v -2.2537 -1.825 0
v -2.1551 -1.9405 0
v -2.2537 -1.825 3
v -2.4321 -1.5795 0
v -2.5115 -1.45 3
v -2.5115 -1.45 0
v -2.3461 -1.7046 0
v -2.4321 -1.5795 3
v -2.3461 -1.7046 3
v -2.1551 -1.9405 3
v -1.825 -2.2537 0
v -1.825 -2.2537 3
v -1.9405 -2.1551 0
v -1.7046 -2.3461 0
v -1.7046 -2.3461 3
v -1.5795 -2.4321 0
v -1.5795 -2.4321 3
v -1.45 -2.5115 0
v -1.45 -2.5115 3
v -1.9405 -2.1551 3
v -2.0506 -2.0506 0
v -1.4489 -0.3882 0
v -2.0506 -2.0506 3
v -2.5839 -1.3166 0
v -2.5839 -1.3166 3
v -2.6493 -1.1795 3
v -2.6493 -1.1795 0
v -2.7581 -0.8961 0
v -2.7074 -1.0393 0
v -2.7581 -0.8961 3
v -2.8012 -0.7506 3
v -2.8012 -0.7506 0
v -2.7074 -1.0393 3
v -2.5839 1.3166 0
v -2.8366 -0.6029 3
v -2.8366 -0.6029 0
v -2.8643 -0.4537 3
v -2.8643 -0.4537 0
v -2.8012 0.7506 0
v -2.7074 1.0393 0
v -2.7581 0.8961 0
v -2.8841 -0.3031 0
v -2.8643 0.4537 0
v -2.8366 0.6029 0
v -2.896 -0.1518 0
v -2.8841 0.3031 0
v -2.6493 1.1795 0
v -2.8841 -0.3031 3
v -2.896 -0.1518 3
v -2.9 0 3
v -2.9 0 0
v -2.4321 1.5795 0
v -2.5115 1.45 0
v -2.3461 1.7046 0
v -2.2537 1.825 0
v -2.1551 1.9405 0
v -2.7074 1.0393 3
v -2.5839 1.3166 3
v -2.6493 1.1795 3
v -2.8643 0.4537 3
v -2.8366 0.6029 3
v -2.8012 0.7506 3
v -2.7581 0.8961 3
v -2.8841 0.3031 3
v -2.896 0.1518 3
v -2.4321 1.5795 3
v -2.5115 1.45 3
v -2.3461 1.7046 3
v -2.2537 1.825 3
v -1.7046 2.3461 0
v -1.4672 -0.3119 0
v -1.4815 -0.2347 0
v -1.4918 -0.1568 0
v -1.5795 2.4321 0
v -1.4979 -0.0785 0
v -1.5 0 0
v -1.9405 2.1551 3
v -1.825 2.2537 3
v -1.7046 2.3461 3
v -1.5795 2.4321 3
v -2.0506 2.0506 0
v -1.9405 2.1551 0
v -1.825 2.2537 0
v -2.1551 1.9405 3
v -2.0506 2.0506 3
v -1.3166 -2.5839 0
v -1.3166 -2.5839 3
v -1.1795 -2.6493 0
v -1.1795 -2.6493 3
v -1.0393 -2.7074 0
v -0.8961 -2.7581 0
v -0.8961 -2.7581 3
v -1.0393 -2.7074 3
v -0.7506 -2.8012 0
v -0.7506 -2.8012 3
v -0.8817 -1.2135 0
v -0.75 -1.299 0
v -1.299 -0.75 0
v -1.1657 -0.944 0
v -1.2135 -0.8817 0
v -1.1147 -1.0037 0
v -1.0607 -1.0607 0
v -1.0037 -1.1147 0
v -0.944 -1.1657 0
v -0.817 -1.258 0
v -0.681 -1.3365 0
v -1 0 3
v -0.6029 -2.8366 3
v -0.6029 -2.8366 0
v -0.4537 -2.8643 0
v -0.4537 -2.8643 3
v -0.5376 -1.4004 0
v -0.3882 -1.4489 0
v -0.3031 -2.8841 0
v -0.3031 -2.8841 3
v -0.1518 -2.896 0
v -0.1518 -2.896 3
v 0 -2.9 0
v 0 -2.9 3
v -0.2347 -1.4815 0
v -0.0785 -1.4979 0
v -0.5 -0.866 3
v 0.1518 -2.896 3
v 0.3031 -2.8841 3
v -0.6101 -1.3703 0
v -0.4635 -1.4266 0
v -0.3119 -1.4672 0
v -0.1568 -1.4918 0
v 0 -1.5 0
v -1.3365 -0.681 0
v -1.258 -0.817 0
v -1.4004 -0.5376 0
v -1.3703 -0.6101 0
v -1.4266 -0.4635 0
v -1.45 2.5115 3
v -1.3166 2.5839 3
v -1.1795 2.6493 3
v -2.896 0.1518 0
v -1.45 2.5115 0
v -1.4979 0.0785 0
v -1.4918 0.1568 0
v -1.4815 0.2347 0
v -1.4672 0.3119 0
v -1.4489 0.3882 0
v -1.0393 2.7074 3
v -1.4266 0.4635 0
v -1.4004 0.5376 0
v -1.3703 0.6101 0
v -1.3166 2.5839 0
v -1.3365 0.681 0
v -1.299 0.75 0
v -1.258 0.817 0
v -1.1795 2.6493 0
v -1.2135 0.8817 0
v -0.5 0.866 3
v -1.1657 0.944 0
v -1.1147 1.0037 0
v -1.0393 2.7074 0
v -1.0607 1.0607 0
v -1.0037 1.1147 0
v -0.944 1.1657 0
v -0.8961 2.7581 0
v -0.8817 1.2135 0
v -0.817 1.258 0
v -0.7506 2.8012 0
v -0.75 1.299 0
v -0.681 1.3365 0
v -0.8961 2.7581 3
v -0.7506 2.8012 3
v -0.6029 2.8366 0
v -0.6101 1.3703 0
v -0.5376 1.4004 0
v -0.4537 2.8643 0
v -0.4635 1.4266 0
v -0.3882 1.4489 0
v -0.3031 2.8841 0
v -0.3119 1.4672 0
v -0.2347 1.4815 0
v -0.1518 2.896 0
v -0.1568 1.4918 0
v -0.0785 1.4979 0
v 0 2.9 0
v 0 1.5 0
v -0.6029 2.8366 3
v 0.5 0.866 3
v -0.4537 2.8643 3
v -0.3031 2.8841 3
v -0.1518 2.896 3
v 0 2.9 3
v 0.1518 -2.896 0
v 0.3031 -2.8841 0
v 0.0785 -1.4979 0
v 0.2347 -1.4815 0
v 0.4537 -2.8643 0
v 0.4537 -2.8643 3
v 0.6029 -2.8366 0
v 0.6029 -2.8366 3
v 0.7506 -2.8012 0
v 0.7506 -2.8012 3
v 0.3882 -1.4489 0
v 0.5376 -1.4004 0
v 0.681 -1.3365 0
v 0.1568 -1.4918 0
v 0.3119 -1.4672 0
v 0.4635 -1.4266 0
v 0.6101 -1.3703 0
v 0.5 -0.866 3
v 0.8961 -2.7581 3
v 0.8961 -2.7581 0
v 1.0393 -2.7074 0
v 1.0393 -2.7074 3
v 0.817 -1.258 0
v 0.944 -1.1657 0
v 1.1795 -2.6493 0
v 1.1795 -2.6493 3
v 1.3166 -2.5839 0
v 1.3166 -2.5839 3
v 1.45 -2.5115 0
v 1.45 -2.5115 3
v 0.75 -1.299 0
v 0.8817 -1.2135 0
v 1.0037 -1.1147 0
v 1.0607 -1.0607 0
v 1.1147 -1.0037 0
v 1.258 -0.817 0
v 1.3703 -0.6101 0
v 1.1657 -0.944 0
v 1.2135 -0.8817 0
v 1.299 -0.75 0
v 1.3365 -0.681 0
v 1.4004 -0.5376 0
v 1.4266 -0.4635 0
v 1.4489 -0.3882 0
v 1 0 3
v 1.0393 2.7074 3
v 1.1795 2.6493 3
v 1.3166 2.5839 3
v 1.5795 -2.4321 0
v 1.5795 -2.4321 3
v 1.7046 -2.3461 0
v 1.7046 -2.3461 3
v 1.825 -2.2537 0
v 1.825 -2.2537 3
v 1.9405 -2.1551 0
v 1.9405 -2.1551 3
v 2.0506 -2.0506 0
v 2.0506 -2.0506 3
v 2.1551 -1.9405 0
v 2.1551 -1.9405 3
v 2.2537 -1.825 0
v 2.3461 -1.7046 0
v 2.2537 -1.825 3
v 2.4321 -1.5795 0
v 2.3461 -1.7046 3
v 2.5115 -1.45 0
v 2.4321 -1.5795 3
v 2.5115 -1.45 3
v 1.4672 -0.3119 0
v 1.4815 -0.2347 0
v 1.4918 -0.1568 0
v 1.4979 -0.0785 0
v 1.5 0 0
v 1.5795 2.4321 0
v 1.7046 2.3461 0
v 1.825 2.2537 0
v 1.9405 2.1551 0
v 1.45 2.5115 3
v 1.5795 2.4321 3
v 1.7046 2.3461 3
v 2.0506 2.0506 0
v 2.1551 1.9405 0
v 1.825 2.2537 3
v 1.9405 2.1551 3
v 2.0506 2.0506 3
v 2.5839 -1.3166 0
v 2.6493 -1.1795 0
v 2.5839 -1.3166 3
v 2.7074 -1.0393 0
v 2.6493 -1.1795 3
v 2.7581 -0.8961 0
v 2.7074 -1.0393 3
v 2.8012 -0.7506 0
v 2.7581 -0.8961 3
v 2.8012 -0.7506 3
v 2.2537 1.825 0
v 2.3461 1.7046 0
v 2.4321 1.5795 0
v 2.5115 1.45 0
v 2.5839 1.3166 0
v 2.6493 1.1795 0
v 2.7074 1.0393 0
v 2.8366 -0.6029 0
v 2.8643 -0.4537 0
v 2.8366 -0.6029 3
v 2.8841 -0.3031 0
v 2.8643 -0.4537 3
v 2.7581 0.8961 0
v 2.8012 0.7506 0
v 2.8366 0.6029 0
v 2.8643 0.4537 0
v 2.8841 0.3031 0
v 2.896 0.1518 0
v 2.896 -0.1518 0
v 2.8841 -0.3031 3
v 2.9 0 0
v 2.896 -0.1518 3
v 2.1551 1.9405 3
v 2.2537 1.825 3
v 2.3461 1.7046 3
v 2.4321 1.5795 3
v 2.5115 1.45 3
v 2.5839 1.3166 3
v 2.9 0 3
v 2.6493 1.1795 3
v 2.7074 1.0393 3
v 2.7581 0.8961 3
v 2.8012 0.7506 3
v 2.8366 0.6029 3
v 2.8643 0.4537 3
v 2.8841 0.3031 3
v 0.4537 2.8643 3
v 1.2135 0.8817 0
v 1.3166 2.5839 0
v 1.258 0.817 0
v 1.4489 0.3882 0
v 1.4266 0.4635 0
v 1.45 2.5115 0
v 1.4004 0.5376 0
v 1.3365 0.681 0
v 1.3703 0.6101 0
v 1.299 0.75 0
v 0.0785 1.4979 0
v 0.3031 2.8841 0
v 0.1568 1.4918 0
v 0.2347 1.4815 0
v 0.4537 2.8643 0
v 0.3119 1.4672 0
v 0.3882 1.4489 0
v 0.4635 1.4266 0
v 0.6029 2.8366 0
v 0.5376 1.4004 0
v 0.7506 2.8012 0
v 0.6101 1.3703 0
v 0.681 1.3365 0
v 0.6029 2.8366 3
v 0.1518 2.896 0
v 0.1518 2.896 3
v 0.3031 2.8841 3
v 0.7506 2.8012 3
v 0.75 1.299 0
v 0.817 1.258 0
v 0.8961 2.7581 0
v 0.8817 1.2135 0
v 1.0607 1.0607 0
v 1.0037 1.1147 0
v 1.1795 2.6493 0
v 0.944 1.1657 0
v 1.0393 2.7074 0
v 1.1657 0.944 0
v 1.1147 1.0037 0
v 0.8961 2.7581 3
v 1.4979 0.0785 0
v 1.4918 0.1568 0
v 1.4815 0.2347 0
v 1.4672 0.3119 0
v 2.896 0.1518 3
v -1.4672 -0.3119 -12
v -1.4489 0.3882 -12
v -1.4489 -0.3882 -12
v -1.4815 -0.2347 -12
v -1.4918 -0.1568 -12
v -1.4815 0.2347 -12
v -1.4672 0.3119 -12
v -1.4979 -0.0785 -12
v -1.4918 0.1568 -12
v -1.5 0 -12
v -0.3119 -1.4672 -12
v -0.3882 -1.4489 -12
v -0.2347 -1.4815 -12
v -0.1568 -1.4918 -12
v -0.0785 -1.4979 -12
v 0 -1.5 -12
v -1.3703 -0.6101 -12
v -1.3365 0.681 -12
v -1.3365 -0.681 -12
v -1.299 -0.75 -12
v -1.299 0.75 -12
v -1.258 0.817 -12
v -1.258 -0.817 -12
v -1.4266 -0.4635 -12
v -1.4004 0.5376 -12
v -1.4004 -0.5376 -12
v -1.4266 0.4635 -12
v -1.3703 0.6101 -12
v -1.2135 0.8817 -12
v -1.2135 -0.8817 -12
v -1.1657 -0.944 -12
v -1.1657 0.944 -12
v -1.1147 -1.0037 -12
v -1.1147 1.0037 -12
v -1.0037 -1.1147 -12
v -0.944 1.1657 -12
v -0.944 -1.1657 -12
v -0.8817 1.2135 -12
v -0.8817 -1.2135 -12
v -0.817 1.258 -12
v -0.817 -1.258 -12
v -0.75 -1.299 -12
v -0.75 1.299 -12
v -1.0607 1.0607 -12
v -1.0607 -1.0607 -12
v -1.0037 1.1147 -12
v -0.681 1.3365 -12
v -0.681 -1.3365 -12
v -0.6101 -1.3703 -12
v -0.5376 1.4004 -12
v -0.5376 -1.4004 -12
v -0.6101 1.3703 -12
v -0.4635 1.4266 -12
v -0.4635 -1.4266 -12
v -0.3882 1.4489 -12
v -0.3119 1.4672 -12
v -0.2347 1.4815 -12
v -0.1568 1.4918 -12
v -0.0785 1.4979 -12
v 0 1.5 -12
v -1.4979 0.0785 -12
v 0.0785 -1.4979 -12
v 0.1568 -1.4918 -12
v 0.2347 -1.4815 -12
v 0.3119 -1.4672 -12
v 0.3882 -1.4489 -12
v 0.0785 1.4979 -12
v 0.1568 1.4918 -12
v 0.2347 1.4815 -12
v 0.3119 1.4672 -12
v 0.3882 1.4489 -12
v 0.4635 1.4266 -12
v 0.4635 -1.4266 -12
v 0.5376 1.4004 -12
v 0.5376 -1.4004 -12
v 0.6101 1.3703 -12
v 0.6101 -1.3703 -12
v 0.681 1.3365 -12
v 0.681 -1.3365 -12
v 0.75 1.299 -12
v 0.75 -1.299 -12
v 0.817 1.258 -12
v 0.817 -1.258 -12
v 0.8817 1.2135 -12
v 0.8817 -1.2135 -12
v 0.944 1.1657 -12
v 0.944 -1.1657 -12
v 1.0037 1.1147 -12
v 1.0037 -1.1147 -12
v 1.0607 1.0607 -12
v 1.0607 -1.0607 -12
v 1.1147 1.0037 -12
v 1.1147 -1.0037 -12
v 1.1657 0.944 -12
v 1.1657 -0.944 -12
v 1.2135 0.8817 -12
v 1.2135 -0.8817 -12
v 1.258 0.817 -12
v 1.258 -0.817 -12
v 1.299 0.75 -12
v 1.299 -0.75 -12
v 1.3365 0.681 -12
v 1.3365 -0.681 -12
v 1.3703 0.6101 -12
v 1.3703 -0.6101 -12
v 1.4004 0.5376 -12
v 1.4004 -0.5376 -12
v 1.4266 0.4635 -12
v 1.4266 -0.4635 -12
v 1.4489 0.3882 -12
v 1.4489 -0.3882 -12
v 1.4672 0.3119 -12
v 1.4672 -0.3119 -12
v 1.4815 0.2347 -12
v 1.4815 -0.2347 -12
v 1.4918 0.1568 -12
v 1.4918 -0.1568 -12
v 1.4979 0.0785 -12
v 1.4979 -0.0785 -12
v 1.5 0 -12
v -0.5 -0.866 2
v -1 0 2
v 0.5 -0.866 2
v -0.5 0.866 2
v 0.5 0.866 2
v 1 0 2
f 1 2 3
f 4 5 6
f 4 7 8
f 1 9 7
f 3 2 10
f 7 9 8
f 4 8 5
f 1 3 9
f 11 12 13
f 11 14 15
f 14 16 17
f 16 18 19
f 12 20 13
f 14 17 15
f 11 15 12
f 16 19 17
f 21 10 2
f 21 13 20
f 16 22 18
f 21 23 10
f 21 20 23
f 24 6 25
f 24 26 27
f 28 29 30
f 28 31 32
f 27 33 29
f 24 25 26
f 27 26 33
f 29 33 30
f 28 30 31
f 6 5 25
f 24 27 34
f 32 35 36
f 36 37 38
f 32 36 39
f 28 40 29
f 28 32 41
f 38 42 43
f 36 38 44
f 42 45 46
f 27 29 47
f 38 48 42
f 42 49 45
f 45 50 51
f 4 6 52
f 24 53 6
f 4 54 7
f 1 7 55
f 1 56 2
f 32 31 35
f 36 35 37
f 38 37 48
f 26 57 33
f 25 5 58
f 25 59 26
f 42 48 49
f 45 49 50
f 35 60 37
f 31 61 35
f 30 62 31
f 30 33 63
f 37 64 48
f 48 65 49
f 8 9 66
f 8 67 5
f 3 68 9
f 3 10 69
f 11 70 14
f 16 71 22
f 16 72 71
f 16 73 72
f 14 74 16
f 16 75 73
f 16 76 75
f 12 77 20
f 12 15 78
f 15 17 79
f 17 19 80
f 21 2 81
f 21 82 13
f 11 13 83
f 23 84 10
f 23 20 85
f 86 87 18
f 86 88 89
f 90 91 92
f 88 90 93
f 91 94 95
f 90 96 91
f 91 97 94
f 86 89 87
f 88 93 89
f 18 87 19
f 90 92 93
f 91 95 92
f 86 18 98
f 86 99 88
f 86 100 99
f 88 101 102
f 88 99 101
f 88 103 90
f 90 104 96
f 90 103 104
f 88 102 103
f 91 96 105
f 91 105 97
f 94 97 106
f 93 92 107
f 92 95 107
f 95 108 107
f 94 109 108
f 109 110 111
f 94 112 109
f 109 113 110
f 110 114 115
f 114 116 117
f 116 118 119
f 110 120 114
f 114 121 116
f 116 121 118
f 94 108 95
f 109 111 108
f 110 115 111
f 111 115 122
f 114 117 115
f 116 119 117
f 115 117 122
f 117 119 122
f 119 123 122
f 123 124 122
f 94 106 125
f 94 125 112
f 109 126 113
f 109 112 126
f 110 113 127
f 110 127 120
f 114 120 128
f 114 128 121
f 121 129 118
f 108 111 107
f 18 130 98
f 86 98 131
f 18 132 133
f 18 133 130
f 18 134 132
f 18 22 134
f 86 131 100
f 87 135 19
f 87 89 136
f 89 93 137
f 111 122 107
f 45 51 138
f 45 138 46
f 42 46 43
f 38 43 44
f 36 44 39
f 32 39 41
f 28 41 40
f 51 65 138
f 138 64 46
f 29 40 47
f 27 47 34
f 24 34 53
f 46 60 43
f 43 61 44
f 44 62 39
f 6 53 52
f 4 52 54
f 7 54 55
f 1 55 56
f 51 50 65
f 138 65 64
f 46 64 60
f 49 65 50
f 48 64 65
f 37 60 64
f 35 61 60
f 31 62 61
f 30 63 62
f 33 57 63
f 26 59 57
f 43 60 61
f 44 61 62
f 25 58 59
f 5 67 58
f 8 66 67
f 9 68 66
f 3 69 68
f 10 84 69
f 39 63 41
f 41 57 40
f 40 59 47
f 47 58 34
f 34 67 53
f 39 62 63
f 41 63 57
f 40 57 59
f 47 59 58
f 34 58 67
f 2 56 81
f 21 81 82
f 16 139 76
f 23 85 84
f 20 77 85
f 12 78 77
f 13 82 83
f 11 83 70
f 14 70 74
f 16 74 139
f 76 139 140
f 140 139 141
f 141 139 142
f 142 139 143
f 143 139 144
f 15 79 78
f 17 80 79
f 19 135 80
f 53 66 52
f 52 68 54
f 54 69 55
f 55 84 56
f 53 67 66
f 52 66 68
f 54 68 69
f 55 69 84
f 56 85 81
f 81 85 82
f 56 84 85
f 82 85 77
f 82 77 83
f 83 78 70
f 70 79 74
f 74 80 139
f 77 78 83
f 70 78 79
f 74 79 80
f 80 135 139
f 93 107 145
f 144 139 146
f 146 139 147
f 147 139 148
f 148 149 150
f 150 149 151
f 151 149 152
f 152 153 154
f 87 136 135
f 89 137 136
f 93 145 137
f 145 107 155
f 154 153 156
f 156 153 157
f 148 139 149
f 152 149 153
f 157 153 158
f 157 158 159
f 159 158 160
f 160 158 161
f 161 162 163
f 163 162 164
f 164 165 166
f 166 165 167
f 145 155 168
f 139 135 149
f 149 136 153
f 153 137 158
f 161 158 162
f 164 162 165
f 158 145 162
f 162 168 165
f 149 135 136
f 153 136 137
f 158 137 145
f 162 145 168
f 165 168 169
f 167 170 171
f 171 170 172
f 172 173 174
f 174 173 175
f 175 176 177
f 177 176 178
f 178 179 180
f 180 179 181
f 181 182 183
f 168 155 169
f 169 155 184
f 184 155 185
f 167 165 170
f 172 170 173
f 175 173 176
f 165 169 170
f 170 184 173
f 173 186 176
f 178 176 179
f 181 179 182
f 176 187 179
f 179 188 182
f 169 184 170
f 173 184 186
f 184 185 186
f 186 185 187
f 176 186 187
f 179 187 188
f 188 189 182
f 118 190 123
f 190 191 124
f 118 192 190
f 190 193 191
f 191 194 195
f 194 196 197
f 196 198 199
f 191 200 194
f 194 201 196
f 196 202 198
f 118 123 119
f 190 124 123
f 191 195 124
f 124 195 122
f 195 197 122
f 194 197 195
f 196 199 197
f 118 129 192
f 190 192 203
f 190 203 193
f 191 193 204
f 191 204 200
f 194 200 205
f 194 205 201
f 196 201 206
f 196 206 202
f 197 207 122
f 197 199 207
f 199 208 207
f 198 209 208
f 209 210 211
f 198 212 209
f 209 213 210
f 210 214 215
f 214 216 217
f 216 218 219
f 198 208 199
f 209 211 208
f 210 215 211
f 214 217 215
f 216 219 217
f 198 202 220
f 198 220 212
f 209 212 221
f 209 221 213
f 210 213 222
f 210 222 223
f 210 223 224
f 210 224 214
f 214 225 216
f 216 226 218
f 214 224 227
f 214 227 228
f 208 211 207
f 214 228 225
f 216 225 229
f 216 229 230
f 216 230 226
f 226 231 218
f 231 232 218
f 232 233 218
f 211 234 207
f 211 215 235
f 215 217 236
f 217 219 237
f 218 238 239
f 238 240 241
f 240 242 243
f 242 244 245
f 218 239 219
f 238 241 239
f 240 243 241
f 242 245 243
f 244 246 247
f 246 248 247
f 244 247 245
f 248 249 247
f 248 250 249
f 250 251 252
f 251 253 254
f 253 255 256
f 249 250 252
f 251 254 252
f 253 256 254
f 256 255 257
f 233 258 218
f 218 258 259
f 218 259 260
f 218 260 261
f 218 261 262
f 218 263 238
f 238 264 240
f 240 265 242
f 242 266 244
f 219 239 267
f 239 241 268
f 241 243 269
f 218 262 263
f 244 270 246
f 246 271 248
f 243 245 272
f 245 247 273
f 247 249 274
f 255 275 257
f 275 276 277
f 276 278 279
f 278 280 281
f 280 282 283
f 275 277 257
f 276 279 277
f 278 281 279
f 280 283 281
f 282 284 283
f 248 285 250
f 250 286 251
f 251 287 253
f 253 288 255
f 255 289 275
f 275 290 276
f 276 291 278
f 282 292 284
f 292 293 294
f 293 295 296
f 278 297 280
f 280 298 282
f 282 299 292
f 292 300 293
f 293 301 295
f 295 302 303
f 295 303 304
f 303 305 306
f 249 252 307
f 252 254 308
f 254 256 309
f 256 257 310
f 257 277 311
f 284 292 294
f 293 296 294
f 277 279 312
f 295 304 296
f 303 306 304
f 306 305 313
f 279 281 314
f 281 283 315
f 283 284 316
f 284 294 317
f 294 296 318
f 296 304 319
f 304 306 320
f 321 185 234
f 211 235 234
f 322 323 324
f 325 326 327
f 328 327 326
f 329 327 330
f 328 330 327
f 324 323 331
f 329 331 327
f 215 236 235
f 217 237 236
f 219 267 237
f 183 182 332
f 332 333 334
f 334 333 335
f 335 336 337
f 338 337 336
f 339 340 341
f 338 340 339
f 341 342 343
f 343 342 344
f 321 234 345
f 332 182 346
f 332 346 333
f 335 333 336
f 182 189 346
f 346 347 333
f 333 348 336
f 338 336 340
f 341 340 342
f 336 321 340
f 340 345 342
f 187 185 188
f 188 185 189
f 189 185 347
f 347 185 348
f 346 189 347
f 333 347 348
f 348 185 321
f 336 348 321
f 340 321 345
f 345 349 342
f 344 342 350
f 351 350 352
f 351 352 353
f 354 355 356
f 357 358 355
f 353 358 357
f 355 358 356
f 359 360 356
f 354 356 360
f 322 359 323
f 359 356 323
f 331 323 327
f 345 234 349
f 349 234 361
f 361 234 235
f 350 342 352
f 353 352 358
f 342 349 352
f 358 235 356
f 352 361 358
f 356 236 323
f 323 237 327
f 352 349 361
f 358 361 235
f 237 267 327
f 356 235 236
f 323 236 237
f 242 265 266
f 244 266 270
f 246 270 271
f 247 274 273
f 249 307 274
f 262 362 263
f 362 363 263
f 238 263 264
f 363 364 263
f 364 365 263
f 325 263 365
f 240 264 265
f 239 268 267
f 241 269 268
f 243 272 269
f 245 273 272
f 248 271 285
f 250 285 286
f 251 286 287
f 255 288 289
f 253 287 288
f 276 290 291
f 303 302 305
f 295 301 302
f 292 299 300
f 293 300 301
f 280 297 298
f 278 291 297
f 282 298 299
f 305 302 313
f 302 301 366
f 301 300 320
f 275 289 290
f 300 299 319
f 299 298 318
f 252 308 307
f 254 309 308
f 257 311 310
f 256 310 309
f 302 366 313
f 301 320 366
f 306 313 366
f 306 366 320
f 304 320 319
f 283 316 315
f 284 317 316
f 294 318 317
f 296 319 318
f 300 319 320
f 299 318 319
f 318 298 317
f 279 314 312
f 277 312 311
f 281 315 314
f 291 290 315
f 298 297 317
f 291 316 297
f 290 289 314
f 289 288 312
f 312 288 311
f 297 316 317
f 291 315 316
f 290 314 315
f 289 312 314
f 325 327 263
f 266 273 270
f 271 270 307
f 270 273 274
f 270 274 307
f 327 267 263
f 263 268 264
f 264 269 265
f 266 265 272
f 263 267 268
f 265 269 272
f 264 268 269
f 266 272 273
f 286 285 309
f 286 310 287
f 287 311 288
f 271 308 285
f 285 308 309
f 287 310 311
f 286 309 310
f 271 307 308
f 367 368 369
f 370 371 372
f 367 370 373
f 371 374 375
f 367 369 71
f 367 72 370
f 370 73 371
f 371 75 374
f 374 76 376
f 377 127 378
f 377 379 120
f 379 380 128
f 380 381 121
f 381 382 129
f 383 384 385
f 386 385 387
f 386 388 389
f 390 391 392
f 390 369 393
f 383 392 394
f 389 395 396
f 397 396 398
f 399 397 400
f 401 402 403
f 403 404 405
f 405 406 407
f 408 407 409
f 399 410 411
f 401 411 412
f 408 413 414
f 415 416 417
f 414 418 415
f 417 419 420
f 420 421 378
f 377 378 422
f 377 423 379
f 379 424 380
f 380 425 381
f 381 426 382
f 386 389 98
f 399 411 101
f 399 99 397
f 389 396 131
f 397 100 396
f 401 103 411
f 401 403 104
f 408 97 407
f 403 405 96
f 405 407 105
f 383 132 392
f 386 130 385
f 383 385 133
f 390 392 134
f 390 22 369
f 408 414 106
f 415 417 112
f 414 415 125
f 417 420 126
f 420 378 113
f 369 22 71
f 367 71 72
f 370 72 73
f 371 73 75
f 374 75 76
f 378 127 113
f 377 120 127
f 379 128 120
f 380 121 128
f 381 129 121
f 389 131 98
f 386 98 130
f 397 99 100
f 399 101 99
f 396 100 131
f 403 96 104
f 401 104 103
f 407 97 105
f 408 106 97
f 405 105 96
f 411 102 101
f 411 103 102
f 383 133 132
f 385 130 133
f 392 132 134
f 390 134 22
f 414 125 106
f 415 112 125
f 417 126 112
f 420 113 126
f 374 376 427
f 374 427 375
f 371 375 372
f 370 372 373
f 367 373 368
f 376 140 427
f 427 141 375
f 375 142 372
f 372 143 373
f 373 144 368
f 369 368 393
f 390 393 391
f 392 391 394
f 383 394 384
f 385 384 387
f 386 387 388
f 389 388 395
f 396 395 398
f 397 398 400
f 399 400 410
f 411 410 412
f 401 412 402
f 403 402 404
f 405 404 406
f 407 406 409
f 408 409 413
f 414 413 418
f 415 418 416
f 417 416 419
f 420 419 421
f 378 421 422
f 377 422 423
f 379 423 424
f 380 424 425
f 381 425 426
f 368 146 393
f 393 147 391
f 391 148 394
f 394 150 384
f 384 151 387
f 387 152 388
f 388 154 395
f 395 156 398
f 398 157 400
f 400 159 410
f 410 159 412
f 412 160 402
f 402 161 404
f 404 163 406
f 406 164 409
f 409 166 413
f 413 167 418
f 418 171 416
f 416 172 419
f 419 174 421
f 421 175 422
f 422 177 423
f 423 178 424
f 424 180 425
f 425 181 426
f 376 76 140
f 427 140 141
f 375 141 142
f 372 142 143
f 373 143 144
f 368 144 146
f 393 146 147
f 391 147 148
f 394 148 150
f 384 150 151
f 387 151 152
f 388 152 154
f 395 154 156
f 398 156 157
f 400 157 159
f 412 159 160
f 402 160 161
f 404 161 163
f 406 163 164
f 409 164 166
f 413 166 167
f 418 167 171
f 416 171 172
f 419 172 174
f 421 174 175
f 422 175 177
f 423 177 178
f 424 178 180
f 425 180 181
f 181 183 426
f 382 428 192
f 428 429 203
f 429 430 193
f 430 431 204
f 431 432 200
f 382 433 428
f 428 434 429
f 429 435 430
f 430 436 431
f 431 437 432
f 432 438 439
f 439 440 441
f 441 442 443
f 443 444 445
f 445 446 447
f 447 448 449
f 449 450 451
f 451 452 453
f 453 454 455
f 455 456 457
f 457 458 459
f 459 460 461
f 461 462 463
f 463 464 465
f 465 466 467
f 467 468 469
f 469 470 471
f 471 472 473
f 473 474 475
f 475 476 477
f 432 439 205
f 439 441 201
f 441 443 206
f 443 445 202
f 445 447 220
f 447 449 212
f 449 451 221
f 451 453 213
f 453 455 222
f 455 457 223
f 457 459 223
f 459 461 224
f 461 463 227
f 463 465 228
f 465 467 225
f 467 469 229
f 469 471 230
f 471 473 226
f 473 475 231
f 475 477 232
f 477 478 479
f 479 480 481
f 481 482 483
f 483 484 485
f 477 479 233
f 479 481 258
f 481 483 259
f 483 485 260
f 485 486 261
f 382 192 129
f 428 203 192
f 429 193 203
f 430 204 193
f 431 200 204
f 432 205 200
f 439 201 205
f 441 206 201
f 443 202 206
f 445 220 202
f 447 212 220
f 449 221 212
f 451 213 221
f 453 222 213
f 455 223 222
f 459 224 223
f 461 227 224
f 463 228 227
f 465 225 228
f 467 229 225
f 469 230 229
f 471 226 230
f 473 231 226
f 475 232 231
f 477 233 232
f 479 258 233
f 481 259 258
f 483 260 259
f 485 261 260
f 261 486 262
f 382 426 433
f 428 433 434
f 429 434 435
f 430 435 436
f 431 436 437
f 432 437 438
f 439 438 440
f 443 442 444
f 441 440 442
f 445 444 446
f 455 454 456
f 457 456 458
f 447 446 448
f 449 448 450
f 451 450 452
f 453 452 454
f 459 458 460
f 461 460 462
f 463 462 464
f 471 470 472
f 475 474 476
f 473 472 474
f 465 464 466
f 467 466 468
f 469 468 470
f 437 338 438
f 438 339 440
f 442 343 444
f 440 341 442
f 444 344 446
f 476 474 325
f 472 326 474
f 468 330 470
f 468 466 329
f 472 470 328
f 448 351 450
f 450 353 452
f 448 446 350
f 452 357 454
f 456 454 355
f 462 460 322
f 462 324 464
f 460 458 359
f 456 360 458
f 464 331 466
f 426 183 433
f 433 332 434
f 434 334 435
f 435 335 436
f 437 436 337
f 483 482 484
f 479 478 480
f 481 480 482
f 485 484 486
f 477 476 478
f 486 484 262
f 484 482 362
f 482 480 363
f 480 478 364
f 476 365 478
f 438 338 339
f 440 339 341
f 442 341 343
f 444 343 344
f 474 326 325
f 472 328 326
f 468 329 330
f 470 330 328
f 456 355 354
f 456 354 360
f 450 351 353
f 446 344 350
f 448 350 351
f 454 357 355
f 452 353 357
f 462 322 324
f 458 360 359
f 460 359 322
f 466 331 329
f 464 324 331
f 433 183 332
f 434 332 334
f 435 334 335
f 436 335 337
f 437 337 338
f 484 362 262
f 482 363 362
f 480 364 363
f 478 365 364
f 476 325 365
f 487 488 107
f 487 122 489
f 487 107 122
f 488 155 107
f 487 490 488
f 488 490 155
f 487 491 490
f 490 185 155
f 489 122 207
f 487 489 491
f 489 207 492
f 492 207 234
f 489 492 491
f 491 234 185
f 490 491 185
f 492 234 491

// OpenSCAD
// file: C:/od/OneDrive/Documents/ChatGPT/oomlout_oobb_part_motor_gearbox_wave_drive_version_5/parts/oobb_part_motor_gearbox_wave_drive_version_5_12_to_1_reduction/compact_helpers.scad
// Reusable native geometry helpers.
function polar(r,a)=[r*cos(a),r*sin(a)];
function rotate_point(p,a)=[p[0]*cos(a)-p[1]*sin(a),p[0]*sin(a)+p[1]*cos(a)];
function profile_point(t)=let(
    s=sqrt(pow(pitch_radius,2)-pow(eccentricity*sin(cavity_count*t),2)),
    r=eccentricity*cos(cavity_count*t)+s,
    xi=atan2(eccentricity*cavity_count*sin(cavity_count*t),s),
    rr=roller_radius+profile_clearance)
    [r*cos(t)+rr*cos(t+xi),r*sin(t)+rr*sin(t+xi)];
function profile_points(upper=false)=[for(i=[0:cavity_count*profile_samples_per_cavity-1])
    rotate_point(profile_point(360*i/(cavity_count*profile_samples_per_cavity)),0)];
function roller_position(i,a,upper=false)=let(
    t=-a/roller_count+360*i/roller_count,
    rel=t-a-(upper?180:0),
    r=eccentricity*cos(rel)+sqrt(pow(pitch_radius,2)-pow(eccentricity*sin(rel),2))) polar(r,t);
module tube(ro,ri,h) { difference() { cylinder(r=ro,h=h); translate([0,0,-eps]) cylinder(r=ri,h=h+2*eps); } }
module screw_hole(size,h) { scale([1,1,h]) { if(size=="m2") oobb_hole_m2(); if(size=="m3") oobb_hole_m3(); if(size=="m6") oobb_hole_m6(); } }
module socket_recess(size,depth) {
    // OOBB socket head starts at the under-head plane and extends outward.
    scale([1,1,depth/(size=="m3"?3.2:2.2)]) {
        if(size=="m3") oobb_socket_m3(); else oobb_socket_m2();
    }
}
module at_mounts(points) { for(p=points) translate([p[0],p[1],0]) children(); }
module shaft_cut(h,fit=shaft_fit_clearance) {
    linear_extrude(h) intersection() {
        circle(r=input_shaft_diameter/2+fit);
        translate([-10,-10]) square([10+input_shaft_diameter/2-input_shaft_flat_depth+fit,20]);
    }
}
module rounded_rectangle_plate(size=[119,119,3],radius=1.5) {
    hull() for(x=[-1,1],y=[-1,1]) translate([x*(size[0]/2-radius),y*(size[1]/2-radius),0]) cylinder(r=radius,h=size[2]);
}
module grid_cuts(h) {
    // Actual OOBB grid centres: six units are centred on half-pitch offsets.
    for(i=[0:base_width-1],j=[0:base_height-1])
        let(x=(i-(base_width-1)/2)*oobb_grid_pitch,y=(j-(base_height-1)/2)*oobb_grid_pitch)
        if(sqrt(x*x+y*y)>housing_radius+3.5)
            translate([x,y,-eps]) screw_hole("m6",h+2*eps);
}
module wave_generator() {
    render(convexity=20) difference() {
        tube(wave_radius,12.6,wave_height);
        translate([0,0,wave_seat_z]) cylinder(r=13.5+bearing_seat_clearance,h=wave_height);
        translate([0,0,wave_height-wave_cap_depth]) cylinder(r=22.15,h=wave_cap_depth+eps);
        at_mounts(wave_mounts) {
            translate([0,0,-eps]) screw_hole("m3",wave_height+2*eps);
            translate([0,0,wave_nut_z]) scale([1,1,(wave_height-wave_cap_depth-wave_nut_z+eps)/2.7]) oobb_nut_m3();
        }
    }
}
module wave_cap() {
    render(convexity=20) difference() {
        tube(22,12.6,wave_cap_depth);
        at_mounts(wave_mounts) {
            translate([0,0,-eps]) screw_hole("m3",wave_cap_depth+2*eps);
            translate([0,0,wave_cap_depth-wave_head_recess]) socket_recess("m3",wave_head_recess+eps);
        }
    }
}
// file: C:/od/OneDrive/Documents/ChatGPT/oomlout_oobb_part_motor_gearbox_wave_drive_version_5/parts/oobb_part_motor_gearbox_wave_drive_version_5_12_to_1_reduction/oobb_hardware.scad
module oobb_rounded_rectangle_edges(size, radius, radius_top, radius_bottom) {
      rt=radius_top; rb=radius_bottom; depth=size[2]; n=16;
      lower=rb==0 ? [[radius,0]] :
        [for(i=[0:n]) let(a=-90+90*i/n) [radius-rb+rb*cos(a),rb+rb*sin(a)]];
      upper=rt==0 ? [[radius,depth]] :
        [for(i=[0:n]) let(a=90*i/n) [radius-rt+rt*cos(a),depth-rt+rt*sin(a)]];
      hull() for(x=[-size[0]/2+radius,size[0]/2-radius])
        for(y=[-size[1]/2+radius,size[1]/2-radius])
          translate([x,y,0]) rotate_extrude()
            polygon(concat([[0,0]],lower,upper,[[0,depth]]));
    }
// Generated from installed OOBB v5. All primitives use overhang=True.

module oobb_motor_plate_body() {


difference() {
	union() {
		translate(v = [0, 0, 0]) {
			rotate(a = [0, 0, 0]) {
				difference() {
					union() {
						oobb_rounded_rectangle_edges(radius = 1.5, radius_bottom = 1.5, radius_top = 1.5, size = [89.0, 89.0, 4.0]);
					}
					union();
				}
			}
		}
	}
	union();
}

}

module oobb_hole_m2() {


difference() {
	union() {
		cylinder(h = 1, r = 1.35);
	}
	union();
}

}

module oobb_hole_m3() {


difference() {
	union() {
		cylinder(h = 1, r = 1.8);
	}
	union();
}

}

module oobb_hole_m6() {


difference() {
	union() {
		cylinder(h = 1, r = 3.25);
	}
	union();
}

}

module oobb_nut_m2() {


difference() {
	union() {
		translate(v = [0, 0, 0]) {
			rotate(a = [0, 0, 0]) {
				difference() {
					union() {
						linear_extrude(height = 2.2) {
							polygon(points = [[2.4234, 0.0], [1.2117000000000002, 2.0987259635312085], [-1.2116999999999996, 2.0987259635312085], [-2.4234, 2.967809053053696e-16], [-1.211700000000001, -2.098725963531208], [1.2116999999999984, -2.0987259635312094]]);
						}
						translate(v = [-1.25, -2.75, -0.3]) {
							cube(size = [2.5, 5.5, 0.3]);
						}
						translate(v = [-1.25, -1.25, -0.6]) {
							cube(size = [2.5, 2.5, 0.3]);
						}
						translate(v = [-1.25, -2.75, 2.2]) {
							cube(size = [2.5, 5.5, 0.3]);
						}
						translate(v = [-1.25, -1.25, 2.5]) {
							cube(size = [2.5, 2.5, 0.3]);
						}
					}
					union();
				}
			}
		}
	}
	union();
}

}

module oobb_socket_m2() {


difference() {
	union() {
		translate(v = [0, 0, 0]) {
			rotate(a = [0, 0, 0]) {
				difference() {
					union() {
						cylinder(h = 2.2, r = 2.1);
						translate(v = [-1.25, -2.75, -0.3]) {
							cube(size = [2.5, 5.5, 0.3]);
						}
						translate(v = [-1.25, -1.25, -0.6]) {
							cube(size = [2.5, 2.5, 0.3]);
						}
					}
					union();
				}
			}
		}
	}
	union();
}

}

module oobb_nut_m3() {


difference() {
	union() {
		translate(v = [0, 0, 0]) {
			rotate(a = [0, 0, 0]) {
				difference() {
					union() {
						linear_extrude(height = 2.7) {
							polygon(points = [[3.4619999999999997, 0.0], [1.7310000000000003, 2.9981799479017264], [-1.7309999999999992, 2.9981799479017264], [-3.4619999999999997, 4.2397272186481365e-16], [-1.7310000000000014, -2.998179947901726], [1.7309999999999977, -2.9981799479017277]]);
						}
						translate(v = [-1.75, -3.25, -0.3]) {
							cube(size = [3.5, 6.5, 0.3]);
						}
						translate(v = [-1.75, -1.75, -0.6]) {
							cube(size = [3.5, 3.5, 0.3]);
						}
						translate(v = [-1.75, -3.25, 2.7]) {
							cube(size = [3.5, 6.5, 0.3]);
						}
						translate(v = [-1.75, -1.75, 3.0]) {
							cube(size = [3.5, 3.5, 0.3]);
						}
					}
					union();
				}
			}
		}
	}
	union();
}

}

module oobb_socket_m3() {


difference() {
	union() {
		translate(v = [0, 0, 0]) {
			rotate(a = [0, 0, 0]) {
				difference() {
					union() {
						cylinder(h = 3.2, r = 3.0);
						translate(v = [-1.75, -3.25, -0.3]) {
							cube(size = [3.5, 6.5, 0.3]);
						}
						translate(v = [-1.75, -1.75, -0.6]) {
							cube(size = [3.5, 3.5, 0.3]);
						}
					}
					union();
				}
			}
		}
	}
	union();
}

}

module oobb_nut_m6() {


difference() {
	union() {
		translate(v = [0, 0, 0]) {
			rotate(a = [0, 0, 0]) {
				difference() {
					union() {
						linear_extrude(height = 5.2) {
							polygon(points = [[5.914249999999999, 0.0], [2.957125, 5.1218907443321156], [-2.9571249999999982, 5.1218907443321156], [-5.914249999999999, 7.242867331857232e-16], [-2.9571250000000022, -5.121890744332115], [2.9571249999999956, -5.121890744332118]]);
						}
						translate(v = [-2.875, -5.0, -0.3]) {
							cube(size = [5.75, 10, 0.3]);
						}
						translate(v = [-2.875, -2.875, -0.6]) {
							cube(size = [5.75, 5.75, 0.3]);
						}
						translate(v = [-2.875, -5.0, 5.2]) {
							cube(size = [5.75, 10, 0.3]);
						}
						translate(v = [-2.875, -2.875, 5.5]) {
							cube(size = [5.75, 5.75, 0.3]);
						}
					}
					union();
				}
			}
		}
	}
	union();
}

}
// file: C:/od/OneDrive/Documents/ChatGPT/oomlout_oobb_part_motor_gearbox_wave_drive_version_5/parts/oobb_part_motor_gearbox_wave_drive_version_5_12_to_1_reduction/parameters.scad
// Generated by working_scad.py. Edit the Python recipe to persist changes.
style = "version_5";
reduction = 12;
bearing_output = "6810";
bearing_wave = "6704";
roller_diameter = 7.0;
roller_bore_diameter = 3.2;
roller_length = 12.0;
roller_material = "nylon";
roller_bank_count = 1;
motor_plate_depth = 4.0;
motor_body_depth = 40.0;
motor_shaft_length = 24.0;
motor_hole_pitch = 31.0;
motor_thread_depth = 6.0;
motor_pilot_diameter = 22.0;
motor_pilot_height = 2.0;
output_holder_wall = 7.0;
max_screw_length = 35.0;
eccentricity = 0.75;
wave_radius = 23.25;
profile_clearance = 0.15;
roller_slot_clearance = 0.3;
roller_end_clearance = 0.3;
cage_wall = 4.0;
cage_plate_depth = 3.0;
bearing_seat_clearance = 0.1;
journal_clearance = 0.05;
bearing_axial_clearance = 0.2;
output_plate_diameter = 65.0;
output_plate_depth = 6.0;
output_grid_pitch = 15.0;
output_face_clearance = 0.3;
output_socket_recess = 4.0;
output_screw_length = 16;
output_nut_depth = 5.2;
output_nut_height = 5.0;
motor_shaft_end_clearance = 0.5;
base_width = 6;
base_height = 6;
oobb_grid_pitch = 15.0;
oobb_size_allowance = 1.0;
base_edge_radius = 1.5;
housing_flange_corner_radius = 1.5;
housing_screw_pitch_radius = 35.5;
housing_screw_count = 6;
input_shaft_diameter = 5.0;
input_shaft_flat_depth = 0.5;
shaft_fit_clearance = 0.1;
cage_screw_count = 4;
profile_samples_per_cavity = 100;
circle_fragments = 120;
overhang = true;
run_scad = true;
run_solidcraft = false;
generate_stl = true;
generate_previews = true;
generate_renders = true;
validate_geometry = true;
package_outputs = true;
render_threads = 8;
variant = "default";
// main file
include <C:/od/OneDrive/Documents/ChatGPT/oomlout_oobb_part_motor_gearbox_wave_drive_version_5/parts/oobb_part_motor_gearbox_wave_drive_version_5_12_to_1_reduction/parameters.scad>
include <C:/od/OneDrive/Documents/ChatGPT/oomlout_oobb_part_motor_gearbox_wave_drive_version_5/parts/oobb_part_motor_gearbox_wave_drive_version_5_12_to_1_reduction/oobb_hardware.scad>
include <C:/od/OneDrive/Documents/ChatGPT/oomlout_oobb_part_motor_gearbox_wave_drive_version_5/parts/oobb_part_motor_gearbox_wave_drive_version_5_12_to_1_reduction/geometry.scad>
difference() { difference() {
	union() {
		translate(v = [0, 0, 0]) {
			rotate(a = [0, 0, 0]) {
				difference() {
					union() {
						cylinder(h = 3, r = 2.9);
						translate(v = [0, 0, -12.0]) {
							cylinder(h = 12, r = 1.5);
						}
					}
					union();
				}
			}
		}
	}
	union();
}
 translate([0,0,2]) cylinder(r=1.0,h=1.01,$fn=6); }
